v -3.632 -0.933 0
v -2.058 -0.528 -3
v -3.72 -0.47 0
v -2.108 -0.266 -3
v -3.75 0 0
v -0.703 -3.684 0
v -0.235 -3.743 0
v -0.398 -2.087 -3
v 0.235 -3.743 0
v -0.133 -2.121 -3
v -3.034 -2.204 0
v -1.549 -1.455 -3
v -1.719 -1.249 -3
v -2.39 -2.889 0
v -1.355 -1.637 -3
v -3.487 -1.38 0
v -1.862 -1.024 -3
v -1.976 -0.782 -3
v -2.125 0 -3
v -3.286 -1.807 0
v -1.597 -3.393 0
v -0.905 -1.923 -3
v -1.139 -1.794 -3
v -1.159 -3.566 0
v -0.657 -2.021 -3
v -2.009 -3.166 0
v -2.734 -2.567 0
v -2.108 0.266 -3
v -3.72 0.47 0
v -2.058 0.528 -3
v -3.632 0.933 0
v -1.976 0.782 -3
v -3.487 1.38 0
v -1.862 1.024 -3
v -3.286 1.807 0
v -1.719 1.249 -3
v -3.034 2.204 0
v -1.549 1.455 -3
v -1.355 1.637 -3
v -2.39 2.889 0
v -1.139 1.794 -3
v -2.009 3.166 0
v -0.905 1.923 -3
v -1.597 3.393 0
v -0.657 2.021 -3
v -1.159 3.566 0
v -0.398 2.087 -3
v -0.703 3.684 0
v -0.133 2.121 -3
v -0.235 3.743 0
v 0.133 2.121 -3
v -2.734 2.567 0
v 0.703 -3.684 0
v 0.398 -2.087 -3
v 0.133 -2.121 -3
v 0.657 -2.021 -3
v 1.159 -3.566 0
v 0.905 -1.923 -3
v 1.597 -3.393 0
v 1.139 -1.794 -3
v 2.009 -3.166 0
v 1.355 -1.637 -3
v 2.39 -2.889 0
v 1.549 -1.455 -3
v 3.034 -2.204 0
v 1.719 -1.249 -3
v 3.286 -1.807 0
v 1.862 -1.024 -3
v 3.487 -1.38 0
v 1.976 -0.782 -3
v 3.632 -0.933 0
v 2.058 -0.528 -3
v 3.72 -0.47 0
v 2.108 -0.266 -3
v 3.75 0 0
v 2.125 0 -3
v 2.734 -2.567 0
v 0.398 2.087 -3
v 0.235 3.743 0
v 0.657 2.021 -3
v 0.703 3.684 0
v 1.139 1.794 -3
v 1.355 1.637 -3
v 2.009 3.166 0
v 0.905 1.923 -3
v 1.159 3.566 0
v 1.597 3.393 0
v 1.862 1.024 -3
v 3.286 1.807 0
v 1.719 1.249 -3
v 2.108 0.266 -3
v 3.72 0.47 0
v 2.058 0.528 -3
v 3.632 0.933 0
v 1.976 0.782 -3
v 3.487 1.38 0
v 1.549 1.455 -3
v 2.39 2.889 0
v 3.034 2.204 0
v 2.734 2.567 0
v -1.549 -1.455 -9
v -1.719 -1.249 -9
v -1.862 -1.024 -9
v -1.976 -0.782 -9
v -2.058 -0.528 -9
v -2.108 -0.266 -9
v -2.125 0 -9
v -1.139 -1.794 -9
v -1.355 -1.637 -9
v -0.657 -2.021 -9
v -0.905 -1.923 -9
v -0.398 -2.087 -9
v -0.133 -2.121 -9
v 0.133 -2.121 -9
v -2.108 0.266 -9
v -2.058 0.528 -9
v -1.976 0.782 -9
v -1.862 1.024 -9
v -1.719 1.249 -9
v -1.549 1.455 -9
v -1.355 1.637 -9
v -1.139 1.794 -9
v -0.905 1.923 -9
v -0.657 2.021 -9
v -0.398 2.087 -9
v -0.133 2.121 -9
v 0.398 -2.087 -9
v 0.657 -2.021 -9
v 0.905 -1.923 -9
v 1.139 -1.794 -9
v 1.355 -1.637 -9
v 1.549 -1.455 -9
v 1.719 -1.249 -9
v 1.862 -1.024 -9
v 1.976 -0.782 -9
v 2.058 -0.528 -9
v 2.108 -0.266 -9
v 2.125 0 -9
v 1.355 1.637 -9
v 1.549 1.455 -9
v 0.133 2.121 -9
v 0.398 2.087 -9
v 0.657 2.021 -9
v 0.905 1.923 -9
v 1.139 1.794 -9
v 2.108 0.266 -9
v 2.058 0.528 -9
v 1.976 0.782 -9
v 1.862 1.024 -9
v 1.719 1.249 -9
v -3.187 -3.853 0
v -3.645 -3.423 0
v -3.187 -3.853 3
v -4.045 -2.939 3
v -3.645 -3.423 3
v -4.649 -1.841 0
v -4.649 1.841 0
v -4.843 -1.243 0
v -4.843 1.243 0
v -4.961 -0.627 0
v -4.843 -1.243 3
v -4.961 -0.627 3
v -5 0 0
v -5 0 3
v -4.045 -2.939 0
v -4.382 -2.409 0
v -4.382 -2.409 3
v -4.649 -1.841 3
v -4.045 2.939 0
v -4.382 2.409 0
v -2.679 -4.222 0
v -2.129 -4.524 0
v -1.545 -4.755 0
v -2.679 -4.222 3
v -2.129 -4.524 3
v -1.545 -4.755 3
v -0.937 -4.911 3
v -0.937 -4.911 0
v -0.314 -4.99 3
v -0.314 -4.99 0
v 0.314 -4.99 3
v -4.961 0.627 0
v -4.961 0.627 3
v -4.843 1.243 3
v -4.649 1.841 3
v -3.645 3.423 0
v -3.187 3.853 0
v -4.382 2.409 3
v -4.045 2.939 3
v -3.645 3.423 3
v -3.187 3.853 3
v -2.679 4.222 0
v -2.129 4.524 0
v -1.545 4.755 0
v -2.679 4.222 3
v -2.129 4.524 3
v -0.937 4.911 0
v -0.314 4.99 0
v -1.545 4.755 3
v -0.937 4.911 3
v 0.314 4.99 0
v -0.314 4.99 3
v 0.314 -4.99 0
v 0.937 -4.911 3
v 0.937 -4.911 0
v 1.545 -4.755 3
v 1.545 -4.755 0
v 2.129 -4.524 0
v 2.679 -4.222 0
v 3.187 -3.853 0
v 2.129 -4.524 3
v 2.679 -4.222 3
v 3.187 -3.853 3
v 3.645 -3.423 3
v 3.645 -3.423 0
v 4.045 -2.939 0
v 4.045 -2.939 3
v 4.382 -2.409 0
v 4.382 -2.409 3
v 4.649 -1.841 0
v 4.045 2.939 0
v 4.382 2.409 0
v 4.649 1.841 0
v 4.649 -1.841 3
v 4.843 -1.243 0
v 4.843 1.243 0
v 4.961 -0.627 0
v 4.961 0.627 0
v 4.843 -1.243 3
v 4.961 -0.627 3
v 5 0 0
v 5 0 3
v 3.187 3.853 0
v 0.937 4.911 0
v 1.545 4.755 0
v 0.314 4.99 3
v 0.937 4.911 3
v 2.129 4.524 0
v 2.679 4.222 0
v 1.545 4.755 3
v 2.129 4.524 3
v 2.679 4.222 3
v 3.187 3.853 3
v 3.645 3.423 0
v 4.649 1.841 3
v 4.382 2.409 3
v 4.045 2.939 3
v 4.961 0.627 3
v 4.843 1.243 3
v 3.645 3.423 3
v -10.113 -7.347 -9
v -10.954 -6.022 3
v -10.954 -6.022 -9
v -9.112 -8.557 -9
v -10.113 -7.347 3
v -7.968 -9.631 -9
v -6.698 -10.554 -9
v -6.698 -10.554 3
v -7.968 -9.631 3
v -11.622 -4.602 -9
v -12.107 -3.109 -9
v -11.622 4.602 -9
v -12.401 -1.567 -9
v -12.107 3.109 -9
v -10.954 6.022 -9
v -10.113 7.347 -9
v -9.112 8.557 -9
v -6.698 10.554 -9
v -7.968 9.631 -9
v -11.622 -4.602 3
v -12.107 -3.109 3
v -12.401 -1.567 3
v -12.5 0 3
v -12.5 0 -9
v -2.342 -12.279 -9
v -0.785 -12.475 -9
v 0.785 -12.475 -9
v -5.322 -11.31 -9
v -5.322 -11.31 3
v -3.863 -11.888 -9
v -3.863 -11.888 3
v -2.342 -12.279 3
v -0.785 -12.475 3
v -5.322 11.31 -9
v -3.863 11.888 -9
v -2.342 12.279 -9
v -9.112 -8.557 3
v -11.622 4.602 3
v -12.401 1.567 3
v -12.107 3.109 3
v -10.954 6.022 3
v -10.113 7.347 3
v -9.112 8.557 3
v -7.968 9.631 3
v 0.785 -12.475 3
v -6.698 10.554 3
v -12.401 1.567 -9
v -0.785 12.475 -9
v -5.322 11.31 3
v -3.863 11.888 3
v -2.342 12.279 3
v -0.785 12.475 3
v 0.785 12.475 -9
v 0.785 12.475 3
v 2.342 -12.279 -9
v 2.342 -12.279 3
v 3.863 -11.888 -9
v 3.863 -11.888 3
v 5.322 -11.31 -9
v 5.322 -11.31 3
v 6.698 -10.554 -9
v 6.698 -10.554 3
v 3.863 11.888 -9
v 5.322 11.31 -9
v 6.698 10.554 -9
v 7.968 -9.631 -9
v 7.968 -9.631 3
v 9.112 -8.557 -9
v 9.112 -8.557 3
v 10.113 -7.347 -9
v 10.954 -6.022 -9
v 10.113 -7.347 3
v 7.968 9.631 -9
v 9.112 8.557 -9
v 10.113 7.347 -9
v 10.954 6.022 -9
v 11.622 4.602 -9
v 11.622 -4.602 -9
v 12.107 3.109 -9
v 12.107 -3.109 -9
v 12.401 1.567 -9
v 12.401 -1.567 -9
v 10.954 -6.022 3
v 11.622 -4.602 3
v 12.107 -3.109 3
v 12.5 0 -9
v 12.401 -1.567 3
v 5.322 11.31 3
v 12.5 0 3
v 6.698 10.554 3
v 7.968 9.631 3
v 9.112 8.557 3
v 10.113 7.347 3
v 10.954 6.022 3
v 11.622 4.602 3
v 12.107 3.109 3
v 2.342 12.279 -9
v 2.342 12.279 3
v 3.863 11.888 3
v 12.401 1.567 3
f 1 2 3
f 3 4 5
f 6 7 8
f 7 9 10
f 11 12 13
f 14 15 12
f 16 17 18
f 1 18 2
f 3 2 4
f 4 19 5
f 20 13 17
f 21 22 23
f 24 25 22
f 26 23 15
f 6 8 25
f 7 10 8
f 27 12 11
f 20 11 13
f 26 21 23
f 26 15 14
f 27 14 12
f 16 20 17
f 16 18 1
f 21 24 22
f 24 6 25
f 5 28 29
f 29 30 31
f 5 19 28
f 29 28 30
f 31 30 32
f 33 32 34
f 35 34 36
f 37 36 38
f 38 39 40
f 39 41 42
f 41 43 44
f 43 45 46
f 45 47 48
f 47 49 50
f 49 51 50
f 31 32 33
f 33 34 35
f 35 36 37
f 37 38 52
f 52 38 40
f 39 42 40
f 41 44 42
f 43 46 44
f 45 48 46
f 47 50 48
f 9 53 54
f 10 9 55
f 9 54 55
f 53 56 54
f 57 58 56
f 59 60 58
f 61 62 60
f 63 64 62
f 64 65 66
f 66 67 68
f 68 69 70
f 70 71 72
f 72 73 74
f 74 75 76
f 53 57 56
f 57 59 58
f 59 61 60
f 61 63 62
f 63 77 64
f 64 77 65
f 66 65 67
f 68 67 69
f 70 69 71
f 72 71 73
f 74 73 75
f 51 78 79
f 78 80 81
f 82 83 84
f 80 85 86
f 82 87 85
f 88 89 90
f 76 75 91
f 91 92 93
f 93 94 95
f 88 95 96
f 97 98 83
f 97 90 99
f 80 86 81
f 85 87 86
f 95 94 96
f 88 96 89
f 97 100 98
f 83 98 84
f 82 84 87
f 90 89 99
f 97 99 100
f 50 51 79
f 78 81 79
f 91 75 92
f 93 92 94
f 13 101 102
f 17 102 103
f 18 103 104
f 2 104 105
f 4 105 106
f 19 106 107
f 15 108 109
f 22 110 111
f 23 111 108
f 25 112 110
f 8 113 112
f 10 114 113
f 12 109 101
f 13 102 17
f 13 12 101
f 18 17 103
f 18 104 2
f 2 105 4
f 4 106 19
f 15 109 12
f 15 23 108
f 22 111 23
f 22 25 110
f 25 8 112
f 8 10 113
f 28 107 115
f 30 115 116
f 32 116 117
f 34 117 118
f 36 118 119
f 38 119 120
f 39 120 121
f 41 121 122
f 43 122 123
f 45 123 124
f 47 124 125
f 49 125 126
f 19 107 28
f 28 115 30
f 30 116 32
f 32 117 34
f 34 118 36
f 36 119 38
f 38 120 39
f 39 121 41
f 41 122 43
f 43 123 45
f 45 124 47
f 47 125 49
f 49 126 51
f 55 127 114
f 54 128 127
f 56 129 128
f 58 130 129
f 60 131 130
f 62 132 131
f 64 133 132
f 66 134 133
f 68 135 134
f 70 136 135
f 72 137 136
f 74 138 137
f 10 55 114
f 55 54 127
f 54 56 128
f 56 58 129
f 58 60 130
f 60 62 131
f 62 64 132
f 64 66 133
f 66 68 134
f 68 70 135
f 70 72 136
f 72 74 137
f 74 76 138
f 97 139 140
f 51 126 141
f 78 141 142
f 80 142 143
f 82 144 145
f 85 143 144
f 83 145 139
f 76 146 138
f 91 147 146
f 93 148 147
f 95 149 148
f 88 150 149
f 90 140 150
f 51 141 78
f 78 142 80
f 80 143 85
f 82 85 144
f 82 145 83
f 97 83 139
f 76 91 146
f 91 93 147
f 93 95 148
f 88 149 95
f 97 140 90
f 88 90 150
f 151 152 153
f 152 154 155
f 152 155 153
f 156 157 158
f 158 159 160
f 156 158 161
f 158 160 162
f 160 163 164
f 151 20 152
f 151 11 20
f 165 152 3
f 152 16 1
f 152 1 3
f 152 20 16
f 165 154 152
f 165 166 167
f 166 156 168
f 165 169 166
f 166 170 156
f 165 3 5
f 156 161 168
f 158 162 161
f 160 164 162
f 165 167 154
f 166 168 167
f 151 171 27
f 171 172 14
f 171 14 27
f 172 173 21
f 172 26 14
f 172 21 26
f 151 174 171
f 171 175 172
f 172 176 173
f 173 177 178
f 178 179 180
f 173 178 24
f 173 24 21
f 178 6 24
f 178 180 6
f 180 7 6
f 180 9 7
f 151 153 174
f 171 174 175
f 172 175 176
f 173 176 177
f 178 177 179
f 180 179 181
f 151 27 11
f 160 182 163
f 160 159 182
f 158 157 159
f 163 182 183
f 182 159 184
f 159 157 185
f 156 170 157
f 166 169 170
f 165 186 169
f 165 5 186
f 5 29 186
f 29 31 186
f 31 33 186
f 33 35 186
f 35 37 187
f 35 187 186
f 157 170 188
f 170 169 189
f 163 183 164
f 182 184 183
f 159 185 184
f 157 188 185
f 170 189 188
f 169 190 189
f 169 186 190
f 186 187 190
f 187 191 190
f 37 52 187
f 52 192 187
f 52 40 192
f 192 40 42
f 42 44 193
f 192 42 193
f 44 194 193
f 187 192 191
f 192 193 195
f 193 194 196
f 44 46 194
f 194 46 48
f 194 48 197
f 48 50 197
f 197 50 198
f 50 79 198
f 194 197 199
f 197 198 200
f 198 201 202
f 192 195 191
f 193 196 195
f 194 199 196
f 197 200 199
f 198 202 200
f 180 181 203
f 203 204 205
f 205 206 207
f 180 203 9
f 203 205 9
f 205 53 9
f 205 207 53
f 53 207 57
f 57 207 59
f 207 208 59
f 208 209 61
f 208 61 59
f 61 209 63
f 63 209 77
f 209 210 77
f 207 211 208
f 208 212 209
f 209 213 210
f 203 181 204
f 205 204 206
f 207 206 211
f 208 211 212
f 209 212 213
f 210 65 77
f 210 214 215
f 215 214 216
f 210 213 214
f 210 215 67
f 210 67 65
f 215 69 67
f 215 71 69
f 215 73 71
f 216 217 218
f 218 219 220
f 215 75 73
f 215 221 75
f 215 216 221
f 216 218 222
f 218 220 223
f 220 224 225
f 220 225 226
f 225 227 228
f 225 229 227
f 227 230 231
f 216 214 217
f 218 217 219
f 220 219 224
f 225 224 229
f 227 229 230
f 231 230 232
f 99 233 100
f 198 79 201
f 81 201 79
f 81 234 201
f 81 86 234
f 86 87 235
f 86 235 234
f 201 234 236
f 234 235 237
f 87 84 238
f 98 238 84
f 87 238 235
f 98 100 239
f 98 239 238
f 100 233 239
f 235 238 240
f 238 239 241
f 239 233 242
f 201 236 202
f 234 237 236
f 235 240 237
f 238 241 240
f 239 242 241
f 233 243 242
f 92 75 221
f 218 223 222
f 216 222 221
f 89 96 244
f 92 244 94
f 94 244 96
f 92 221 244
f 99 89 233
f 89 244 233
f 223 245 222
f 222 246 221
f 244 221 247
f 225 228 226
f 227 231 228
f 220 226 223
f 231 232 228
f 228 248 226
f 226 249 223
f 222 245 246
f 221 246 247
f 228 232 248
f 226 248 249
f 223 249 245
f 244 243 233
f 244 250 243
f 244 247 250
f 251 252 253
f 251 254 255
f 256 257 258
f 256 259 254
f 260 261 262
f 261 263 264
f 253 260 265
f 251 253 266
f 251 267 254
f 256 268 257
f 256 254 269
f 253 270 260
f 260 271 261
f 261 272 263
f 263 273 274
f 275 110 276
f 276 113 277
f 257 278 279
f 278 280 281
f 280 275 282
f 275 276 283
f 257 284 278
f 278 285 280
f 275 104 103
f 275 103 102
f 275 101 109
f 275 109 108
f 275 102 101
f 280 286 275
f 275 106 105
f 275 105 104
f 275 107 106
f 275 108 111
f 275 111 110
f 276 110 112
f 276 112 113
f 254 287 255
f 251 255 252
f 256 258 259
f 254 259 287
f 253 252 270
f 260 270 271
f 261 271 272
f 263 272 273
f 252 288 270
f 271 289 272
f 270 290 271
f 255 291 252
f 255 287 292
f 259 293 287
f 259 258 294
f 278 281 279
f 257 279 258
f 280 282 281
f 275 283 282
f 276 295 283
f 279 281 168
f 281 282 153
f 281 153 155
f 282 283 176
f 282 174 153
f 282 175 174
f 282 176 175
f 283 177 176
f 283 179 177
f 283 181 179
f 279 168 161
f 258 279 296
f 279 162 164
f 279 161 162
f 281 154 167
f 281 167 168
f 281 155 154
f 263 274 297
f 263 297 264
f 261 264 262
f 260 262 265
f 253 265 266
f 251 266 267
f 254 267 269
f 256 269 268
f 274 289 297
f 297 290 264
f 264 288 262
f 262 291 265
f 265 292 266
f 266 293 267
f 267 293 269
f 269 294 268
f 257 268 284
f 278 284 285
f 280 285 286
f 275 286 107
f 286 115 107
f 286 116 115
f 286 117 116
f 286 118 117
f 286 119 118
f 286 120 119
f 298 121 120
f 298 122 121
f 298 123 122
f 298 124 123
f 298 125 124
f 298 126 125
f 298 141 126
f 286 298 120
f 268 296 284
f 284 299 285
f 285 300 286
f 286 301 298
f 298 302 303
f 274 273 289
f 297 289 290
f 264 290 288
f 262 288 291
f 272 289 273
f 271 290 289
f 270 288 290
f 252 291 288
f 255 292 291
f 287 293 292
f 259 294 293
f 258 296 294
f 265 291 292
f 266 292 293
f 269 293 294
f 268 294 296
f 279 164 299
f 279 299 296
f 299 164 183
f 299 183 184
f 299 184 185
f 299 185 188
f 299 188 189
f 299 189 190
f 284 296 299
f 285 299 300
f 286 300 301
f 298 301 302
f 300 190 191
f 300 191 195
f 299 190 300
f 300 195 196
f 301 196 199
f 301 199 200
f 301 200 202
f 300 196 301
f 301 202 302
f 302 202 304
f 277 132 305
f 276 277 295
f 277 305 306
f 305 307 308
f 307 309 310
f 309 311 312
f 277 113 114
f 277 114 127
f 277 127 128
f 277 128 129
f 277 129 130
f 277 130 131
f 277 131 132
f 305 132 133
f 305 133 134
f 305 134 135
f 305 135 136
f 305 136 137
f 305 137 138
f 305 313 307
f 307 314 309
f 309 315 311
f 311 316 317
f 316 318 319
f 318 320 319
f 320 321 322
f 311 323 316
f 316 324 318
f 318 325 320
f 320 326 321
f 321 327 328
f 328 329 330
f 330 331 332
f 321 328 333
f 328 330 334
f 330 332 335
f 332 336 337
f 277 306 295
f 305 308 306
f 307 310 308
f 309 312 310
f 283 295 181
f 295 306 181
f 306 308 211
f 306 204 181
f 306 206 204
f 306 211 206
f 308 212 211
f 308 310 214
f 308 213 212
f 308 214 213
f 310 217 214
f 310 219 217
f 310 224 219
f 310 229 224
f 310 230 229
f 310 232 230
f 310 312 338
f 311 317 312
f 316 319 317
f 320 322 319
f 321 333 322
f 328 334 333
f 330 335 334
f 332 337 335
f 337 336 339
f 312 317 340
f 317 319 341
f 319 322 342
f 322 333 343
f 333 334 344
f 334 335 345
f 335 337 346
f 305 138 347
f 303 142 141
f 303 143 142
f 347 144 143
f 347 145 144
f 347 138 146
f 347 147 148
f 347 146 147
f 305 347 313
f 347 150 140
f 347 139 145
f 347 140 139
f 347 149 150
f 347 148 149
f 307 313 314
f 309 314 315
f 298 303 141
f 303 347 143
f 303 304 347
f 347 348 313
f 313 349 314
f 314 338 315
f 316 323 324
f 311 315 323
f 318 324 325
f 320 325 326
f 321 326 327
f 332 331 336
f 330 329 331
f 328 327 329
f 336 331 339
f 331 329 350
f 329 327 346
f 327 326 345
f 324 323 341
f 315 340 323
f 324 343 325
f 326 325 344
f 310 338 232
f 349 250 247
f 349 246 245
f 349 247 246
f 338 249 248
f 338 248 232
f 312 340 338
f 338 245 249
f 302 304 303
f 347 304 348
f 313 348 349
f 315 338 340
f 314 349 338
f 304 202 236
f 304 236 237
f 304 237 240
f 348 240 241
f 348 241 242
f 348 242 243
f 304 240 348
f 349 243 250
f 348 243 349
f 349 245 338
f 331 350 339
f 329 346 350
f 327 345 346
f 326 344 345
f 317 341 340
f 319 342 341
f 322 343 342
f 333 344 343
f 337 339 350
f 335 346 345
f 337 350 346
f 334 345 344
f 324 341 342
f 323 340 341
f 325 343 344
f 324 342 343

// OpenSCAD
$fn = 50;


difference() {
	union() {
		translate(v = [0, 0, -9.0000000000]) {
			cylinder(h = 12, r = 12.5000000000);
		}
	}
	union() {
		translate(v = [0, 0, 0]) {
			rotate(a = [0, 0, 0]) {
				difference() {
					union() {
						translate(v = [0, 0, -12.0000000000]) {
							cylinder(h = 12, r = 2.0000000000);
						}
						translate(v = [0, 0, -3]) {
							cylinder(h = 3, r1 = 2.1250000000, r2 = 3.7500000000);
						}
						translate(v = [0, 0, -12.0000000000]) {
							cylinder(h = 12, r = 2.1250000000);
						}
						translate(v = [0, 0, -12.0000000000]) {
							cylinder(h = 12, r = 2.0000000000);
						}
					}
					union();
				}
			}
		}
		#cylinder(h = 3, r = 5.0000000000);
	}
}
